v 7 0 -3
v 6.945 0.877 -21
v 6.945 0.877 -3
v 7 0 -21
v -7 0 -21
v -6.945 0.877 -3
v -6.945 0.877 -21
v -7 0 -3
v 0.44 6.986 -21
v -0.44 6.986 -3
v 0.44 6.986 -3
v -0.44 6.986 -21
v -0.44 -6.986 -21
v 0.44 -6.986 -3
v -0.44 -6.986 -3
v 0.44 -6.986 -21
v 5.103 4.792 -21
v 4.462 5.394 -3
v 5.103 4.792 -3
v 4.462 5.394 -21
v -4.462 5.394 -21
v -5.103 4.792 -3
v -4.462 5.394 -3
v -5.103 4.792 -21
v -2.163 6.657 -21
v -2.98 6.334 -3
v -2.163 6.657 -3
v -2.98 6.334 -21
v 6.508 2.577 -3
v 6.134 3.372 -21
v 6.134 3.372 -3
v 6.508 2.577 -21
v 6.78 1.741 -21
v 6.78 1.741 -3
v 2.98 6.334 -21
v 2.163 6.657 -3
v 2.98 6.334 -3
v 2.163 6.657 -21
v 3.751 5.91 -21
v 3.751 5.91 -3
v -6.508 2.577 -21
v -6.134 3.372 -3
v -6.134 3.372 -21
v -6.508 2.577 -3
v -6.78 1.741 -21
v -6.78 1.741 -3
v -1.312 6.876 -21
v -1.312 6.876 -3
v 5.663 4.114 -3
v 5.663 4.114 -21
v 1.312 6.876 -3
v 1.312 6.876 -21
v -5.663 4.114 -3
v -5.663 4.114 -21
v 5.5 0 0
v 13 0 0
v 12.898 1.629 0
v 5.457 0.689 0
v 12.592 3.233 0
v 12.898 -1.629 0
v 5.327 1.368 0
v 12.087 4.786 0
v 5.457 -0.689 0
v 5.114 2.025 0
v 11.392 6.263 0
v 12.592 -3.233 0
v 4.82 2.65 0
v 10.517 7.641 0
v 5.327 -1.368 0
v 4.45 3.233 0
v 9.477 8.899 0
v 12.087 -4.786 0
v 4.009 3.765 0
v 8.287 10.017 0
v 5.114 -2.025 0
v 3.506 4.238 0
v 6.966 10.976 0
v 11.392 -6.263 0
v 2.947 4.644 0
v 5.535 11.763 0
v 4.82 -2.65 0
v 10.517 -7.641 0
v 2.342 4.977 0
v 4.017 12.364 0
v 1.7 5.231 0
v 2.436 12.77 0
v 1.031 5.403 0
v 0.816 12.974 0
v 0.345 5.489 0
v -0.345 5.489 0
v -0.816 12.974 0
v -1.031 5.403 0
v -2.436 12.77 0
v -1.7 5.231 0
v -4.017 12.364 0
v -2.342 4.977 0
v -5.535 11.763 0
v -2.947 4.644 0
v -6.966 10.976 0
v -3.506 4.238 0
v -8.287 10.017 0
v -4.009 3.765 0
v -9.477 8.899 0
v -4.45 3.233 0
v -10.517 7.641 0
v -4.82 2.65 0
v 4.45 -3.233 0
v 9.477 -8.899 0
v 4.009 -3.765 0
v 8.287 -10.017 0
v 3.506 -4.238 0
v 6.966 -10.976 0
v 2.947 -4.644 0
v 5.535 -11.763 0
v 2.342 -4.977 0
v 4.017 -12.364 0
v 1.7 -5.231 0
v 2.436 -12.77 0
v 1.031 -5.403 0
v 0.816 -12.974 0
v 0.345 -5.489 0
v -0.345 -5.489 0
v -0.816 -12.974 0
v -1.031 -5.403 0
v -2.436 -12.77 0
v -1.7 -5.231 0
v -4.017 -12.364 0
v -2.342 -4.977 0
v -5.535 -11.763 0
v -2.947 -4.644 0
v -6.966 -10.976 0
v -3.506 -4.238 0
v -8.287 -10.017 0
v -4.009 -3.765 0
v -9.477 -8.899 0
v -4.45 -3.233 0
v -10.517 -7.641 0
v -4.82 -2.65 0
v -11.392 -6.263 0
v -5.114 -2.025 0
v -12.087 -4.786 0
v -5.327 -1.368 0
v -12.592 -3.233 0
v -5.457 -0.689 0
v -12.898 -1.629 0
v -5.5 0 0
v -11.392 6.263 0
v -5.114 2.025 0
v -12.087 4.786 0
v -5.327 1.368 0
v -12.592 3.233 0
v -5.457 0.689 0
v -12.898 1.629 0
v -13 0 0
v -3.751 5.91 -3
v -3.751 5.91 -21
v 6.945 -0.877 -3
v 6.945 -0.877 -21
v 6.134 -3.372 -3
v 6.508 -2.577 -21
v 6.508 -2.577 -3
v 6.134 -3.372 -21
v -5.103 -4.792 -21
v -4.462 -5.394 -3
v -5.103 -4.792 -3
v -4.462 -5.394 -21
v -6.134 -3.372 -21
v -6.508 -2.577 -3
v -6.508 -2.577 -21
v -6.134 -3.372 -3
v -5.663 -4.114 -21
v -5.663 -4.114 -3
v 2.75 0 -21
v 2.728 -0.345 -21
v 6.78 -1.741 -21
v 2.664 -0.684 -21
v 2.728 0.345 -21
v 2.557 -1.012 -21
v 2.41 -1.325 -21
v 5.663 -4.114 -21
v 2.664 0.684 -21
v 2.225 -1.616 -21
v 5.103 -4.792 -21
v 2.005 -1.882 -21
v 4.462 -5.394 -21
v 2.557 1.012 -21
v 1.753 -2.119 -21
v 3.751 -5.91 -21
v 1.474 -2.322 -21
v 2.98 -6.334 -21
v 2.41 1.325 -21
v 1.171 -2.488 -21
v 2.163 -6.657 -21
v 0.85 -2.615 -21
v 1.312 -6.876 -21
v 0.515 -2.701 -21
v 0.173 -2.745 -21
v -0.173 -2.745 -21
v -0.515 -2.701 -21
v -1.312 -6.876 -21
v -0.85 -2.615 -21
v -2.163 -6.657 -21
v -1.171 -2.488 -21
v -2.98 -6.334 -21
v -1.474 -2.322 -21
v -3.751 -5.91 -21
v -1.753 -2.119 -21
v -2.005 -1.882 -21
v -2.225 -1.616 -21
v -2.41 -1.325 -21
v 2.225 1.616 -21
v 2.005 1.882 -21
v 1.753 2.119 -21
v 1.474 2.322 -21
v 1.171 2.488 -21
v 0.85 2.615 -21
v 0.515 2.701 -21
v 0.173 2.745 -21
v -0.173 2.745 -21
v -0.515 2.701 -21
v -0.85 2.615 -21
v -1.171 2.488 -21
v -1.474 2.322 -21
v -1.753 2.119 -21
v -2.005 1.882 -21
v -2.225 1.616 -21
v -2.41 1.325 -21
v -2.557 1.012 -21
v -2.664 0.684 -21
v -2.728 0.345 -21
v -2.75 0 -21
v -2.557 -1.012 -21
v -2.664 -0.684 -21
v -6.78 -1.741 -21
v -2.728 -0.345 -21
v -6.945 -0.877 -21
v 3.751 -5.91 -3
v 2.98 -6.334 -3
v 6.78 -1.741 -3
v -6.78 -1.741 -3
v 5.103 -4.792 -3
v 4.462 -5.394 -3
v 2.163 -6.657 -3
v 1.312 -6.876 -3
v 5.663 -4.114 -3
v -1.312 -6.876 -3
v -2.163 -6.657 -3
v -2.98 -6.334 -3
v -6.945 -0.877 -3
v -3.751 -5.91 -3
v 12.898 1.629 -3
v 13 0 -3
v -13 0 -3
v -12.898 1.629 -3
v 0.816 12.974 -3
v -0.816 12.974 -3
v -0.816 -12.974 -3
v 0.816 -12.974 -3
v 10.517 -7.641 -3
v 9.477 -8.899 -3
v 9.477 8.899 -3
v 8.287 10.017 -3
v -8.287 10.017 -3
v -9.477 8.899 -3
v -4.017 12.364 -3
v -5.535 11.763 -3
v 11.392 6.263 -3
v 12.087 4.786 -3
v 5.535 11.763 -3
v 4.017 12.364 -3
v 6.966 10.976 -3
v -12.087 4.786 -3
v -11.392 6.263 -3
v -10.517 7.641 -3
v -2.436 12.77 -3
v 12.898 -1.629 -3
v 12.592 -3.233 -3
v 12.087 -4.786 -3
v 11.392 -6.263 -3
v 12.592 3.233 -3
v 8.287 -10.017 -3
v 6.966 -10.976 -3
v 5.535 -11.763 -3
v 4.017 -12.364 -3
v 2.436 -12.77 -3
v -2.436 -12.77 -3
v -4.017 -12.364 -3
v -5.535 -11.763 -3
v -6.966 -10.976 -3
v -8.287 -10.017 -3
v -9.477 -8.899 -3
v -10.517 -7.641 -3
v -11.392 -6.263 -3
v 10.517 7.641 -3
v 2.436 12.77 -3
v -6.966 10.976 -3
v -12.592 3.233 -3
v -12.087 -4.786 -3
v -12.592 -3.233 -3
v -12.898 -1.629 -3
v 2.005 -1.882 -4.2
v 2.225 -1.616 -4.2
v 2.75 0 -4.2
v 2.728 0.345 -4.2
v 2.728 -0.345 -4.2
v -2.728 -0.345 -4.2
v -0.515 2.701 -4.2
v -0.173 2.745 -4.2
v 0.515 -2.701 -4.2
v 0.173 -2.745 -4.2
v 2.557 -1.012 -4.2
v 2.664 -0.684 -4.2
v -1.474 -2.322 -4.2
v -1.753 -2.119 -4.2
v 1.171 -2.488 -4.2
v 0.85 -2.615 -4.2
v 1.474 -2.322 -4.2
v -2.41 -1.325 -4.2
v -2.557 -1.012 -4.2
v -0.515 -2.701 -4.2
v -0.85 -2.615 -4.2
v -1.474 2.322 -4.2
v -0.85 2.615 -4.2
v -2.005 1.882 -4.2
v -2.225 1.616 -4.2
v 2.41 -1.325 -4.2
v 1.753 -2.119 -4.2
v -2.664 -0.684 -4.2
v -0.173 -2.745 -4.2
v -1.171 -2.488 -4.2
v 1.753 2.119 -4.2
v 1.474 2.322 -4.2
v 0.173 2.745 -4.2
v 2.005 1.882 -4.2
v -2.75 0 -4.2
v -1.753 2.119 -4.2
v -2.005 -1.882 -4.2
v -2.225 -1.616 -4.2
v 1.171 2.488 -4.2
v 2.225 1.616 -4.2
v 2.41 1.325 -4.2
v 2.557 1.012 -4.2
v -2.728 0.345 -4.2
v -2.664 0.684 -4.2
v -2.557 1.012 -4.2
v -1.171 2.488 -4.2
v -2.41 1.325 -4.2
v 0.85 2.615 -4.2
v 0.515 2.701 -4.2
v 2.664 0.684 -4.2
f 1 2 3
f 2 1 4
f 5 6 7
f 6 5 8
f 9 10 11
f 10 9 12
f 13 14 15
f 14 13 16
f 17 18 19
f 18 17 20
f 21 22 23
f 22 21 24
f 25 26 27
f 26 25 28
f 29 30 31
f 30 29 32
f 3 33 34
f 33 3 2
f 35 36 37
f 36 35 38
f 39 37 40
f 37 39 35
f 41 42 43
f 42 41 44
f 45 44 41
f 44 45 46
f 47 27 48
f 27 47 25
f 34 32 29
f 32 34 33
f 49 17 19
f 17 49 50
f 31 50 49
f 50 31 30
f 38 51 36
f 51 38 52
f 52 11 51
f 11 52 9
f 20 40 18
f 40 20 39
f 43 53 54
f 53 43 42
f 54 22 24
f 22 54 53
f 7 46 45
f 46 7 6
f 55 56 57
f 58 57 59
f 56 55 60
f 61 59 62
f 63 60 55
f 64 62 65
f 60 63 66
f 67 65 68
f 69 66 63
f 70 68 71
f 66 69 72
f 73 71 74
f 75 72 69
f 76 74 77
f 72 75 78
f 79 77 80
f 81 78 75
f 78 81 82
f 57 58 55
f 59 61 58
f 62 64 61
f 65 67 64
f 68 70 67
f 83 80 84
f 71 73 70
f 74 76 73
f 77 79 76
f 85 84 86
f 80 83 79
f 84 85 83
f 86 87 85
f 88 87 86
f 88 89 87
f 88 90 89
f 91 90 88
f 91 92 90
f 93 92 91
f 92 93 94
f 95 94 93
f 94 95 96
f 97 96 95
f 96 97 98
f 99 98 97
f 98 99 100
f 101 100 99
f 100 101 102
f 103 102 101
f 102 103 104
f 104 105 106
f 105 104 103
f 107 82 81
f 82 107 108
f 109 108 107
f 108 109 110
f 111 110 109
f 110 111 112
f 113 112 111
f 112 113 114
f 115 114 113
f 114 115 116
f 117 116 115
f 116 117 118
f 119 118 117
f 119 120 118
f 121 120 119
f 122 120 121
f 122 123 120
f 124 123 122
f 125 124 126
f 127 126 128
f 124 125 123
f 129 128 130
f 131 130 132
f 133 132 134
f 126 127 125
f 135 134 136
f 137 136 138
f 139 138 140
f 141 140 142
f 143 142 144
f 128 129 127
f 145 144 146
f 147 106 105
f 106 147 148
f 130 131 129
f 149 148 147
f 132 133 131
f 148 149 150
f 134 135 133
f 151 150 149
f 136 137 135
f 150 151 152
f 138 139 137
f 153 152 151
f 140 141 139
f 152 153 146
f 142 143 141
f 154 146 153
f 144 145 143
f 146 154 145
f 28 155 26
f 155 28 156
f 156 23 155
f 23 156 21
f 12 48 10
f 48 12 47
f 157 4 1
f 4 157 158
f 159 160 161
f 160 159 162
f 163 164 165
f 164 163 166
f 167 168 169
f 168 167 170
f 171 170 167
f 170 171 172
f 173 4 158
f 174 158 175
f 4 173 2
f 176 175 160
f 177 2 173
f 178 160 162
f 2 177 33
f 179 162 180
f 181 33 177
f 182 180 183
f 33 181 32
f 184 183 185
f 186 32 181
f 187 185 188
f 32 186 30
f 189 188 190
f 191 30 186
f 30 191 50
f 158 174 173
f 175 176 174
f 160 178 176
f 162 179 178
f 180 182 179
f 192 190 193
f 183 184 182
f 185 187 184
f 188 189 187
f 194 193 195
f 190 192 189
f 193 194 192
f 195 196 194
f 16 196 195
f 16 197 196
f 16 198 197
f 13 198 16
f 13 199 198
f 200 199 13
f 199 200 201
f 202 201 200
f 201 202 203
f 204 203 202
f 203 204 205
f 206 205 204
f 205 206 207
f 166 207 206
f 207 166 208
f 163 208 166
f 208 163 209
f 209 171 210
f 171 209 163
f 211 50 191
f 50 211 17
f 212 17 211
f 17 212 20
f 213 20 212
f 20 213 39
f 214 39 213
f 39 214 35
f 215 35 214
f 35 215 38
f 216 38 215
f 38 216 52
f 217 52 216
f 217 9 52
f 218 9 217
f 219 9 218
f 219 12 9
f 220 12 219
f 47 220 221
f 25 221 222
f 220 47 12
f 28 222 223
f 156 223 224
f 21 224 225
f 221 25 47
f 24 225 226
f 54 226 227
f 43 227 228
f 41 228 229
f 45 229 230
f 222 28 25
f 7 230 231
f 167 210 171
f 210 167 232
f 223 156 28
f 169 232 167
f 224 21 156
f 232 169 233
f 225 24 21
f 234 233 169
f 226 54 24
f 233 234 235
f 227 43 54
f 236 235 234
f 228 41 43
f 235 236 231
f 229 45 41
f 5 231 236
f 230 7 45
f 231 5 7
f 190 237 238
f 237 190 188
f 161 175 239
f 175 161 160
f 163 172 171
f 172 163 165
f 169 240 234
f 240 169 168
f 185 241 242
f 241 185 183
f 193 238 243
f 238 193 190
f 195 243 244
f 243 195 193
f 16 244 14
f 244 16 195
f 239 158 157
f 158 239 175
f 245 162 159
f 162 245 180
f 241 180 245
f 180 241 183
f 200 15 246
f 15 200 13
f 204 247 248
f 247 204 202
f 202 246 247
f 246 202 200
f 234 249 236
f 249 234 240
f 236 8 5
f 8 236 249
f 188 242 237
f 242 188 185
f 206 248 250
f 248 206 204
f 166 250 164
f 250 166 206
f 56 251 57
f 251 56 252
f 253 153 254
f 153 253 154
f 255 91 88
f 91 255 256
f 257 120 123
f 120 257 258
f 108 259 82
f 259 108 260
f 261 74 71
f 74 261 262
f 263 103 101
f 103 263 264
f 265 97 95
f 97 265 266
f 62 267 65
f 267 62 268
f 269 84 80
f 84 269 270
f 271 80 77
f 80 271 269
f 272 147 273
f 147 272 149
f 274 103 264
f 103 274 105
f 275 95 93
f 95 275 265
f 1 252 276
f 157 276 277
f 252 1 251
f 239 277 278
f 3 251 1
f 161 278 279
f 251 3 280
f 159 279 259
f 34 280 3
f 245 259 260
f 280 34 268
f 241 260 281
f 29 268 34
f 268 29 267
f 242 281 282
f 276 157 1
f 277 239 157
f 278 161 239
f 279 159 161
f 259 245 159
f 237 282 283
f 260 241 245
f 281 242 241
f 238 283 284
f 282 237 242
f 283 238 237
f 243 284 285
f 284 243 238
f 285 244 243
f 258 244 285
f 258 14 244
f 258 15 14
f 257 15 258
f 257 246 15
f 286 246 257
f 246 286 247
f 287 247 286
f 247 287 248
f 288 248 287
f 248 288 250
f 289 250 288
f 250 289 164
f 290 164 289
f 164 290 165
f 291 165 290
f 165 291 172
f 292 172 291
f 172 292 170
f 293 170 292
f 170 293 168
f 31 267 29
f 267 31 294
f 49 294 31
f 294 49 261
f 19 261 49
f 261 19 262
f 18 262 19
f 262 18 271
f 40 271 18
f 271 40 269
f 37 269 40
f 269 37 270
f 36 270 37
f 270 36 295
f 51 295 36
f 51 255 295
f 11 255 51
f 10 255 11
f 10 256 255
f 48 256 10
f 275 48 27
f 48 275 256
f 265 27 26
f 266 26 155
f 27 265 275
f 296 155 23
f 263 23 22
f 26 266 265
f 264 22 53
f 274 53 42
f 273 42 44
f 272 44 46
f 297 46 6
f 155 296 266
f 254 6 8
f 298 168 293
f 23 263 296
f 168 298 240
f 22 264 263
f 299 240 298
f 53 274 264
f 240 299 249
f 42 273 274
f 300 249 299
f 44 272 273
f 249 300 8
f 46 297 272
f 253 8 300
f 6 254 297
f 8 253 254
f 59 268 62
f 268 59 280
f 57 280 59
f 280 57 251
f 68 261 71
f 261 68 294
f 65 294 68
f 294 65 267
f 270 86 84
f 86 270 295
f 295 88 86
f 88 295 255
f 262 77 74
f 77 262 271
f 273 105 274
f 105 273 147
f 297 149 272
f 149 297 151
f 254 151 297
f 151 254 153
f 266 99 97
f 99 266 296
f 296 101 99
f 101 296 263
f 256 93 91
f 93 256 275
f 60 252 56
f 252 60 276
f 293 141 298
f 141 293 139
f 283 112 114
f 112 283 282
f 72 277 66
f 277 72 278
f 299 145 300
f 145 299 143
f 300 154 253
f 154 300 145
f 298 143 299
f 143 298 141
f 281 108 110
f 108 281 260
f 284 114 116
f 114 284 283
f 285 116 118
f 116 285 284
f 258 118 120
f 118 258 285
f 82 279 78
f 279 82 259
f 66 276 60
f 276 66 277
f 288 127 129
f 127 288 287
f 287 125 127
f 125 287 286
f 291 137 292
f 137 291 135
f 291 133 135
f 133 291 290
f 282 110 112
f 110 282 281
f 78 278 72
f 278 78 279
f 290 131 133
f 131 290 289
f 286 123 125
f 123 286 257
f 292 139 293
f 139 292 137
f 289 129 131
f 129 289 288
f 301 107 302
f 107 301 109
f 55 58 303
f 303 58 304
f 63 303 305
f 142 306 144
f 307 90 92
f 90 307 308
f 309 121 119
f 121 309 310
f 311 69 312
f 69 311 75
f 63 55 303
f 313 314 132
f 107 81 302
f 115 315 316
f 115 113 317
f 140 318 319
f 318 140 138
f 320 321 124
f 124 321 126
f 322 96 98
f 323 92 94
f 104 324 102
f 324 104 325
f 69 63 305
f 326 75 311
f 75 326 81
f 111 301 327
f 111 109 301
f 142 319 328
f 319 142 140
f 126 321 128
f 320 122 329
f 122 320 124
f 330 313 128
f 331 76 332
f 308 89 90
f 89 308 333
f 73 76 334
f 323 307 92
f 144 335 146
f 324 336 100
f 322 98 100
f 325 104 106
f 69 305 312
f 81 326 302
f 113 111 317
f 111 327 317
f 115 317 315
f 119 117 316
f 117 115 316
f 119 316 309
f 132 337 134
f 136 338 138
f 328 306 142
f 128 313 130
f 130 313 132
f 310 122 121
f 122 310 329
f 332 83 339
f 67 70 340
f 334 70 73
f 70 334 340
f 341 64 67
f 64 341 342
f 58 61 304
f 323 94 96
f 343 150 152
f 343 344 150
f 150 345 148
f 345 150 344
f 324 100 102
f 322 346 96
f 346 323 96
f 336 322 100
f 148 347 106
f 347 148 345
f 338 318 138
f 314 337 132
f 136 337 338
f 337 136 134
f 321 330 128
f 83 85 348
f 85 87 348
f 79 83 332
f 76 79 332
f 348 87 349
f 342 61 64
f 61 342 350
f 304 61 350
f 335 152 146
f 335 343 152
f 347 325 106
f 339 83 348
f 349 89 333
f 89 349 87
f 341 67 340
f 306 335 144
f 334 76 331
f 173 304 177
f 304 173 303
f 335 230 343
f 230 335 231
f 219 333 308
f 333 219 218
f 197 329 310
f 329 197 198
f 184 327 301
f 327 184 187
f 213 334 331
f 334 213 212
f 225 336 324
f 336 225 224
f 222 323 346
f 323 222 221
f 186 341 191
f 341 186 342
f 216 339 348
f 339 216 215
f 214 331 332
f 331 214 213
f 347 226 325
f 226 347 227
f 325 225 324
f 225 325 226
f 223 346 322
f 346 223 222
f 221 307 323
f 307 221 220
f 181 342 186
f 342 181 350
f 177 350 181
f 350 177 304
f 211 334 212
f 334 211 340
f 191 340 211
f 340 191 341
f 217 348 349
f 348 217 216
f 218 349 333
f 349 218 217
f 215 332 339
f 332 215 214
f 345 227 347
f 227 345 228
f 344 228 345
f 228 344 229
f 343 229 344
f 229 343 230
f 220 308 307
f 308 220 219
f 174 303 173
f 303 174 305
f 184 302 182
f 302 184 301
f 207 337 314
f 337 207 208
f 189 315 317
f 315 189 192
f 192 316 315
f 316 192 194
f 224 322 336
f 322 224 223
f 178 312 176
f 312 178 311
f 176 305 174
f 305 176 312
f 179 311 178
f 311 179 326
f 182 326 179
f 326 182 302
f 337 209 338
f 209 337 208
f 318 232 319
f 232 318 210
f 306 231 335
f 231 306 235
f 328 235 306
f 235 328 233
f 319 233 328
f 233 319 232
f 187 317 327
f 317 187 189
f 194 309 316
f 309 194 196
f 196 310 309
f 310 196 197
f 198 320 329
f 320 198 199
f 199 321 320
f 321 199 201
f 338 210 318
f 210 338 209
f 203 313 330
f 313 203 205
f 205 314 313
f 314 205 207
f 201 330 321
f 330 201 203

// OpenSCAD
$fn = 50;


difference() {
	union() {
		translate(v = [0, 0, -21.0000000000]) {
			cylinder(h = 21, r = 7.0000000000);
		}
		translate(v = [0, 0, -3.0000000000]) {
			cylinder(h = 3, r = 13.0000000000);
		}
	}
	union() {
		translate(v = [0, 0, 0]) {
			rotate(a = [0, 0, 0]) {
				difference() {
					union() {
						#translate(v = [0, 0, -21.0000000000]) {
							cylinder(h = 21, r = 2.2500000000);
						}
						#translate(v = [0, 0, -4.2000000000]) {
							cylinder(h = 4.2000000000, r1 = 2.7500000000, r2 = 5.5000000000);
						}
						#translate(v = [0, 0, -21.0000000000]) {
							cylinder(h = 21, r = 2.7500000000);
						}
						#translate(v = [0, 0, -21.0000000000]) {
							cylinder(h = 21, r = 2.2500000000);
						}
					}
					union();
				}
			}
		}
	}
}
